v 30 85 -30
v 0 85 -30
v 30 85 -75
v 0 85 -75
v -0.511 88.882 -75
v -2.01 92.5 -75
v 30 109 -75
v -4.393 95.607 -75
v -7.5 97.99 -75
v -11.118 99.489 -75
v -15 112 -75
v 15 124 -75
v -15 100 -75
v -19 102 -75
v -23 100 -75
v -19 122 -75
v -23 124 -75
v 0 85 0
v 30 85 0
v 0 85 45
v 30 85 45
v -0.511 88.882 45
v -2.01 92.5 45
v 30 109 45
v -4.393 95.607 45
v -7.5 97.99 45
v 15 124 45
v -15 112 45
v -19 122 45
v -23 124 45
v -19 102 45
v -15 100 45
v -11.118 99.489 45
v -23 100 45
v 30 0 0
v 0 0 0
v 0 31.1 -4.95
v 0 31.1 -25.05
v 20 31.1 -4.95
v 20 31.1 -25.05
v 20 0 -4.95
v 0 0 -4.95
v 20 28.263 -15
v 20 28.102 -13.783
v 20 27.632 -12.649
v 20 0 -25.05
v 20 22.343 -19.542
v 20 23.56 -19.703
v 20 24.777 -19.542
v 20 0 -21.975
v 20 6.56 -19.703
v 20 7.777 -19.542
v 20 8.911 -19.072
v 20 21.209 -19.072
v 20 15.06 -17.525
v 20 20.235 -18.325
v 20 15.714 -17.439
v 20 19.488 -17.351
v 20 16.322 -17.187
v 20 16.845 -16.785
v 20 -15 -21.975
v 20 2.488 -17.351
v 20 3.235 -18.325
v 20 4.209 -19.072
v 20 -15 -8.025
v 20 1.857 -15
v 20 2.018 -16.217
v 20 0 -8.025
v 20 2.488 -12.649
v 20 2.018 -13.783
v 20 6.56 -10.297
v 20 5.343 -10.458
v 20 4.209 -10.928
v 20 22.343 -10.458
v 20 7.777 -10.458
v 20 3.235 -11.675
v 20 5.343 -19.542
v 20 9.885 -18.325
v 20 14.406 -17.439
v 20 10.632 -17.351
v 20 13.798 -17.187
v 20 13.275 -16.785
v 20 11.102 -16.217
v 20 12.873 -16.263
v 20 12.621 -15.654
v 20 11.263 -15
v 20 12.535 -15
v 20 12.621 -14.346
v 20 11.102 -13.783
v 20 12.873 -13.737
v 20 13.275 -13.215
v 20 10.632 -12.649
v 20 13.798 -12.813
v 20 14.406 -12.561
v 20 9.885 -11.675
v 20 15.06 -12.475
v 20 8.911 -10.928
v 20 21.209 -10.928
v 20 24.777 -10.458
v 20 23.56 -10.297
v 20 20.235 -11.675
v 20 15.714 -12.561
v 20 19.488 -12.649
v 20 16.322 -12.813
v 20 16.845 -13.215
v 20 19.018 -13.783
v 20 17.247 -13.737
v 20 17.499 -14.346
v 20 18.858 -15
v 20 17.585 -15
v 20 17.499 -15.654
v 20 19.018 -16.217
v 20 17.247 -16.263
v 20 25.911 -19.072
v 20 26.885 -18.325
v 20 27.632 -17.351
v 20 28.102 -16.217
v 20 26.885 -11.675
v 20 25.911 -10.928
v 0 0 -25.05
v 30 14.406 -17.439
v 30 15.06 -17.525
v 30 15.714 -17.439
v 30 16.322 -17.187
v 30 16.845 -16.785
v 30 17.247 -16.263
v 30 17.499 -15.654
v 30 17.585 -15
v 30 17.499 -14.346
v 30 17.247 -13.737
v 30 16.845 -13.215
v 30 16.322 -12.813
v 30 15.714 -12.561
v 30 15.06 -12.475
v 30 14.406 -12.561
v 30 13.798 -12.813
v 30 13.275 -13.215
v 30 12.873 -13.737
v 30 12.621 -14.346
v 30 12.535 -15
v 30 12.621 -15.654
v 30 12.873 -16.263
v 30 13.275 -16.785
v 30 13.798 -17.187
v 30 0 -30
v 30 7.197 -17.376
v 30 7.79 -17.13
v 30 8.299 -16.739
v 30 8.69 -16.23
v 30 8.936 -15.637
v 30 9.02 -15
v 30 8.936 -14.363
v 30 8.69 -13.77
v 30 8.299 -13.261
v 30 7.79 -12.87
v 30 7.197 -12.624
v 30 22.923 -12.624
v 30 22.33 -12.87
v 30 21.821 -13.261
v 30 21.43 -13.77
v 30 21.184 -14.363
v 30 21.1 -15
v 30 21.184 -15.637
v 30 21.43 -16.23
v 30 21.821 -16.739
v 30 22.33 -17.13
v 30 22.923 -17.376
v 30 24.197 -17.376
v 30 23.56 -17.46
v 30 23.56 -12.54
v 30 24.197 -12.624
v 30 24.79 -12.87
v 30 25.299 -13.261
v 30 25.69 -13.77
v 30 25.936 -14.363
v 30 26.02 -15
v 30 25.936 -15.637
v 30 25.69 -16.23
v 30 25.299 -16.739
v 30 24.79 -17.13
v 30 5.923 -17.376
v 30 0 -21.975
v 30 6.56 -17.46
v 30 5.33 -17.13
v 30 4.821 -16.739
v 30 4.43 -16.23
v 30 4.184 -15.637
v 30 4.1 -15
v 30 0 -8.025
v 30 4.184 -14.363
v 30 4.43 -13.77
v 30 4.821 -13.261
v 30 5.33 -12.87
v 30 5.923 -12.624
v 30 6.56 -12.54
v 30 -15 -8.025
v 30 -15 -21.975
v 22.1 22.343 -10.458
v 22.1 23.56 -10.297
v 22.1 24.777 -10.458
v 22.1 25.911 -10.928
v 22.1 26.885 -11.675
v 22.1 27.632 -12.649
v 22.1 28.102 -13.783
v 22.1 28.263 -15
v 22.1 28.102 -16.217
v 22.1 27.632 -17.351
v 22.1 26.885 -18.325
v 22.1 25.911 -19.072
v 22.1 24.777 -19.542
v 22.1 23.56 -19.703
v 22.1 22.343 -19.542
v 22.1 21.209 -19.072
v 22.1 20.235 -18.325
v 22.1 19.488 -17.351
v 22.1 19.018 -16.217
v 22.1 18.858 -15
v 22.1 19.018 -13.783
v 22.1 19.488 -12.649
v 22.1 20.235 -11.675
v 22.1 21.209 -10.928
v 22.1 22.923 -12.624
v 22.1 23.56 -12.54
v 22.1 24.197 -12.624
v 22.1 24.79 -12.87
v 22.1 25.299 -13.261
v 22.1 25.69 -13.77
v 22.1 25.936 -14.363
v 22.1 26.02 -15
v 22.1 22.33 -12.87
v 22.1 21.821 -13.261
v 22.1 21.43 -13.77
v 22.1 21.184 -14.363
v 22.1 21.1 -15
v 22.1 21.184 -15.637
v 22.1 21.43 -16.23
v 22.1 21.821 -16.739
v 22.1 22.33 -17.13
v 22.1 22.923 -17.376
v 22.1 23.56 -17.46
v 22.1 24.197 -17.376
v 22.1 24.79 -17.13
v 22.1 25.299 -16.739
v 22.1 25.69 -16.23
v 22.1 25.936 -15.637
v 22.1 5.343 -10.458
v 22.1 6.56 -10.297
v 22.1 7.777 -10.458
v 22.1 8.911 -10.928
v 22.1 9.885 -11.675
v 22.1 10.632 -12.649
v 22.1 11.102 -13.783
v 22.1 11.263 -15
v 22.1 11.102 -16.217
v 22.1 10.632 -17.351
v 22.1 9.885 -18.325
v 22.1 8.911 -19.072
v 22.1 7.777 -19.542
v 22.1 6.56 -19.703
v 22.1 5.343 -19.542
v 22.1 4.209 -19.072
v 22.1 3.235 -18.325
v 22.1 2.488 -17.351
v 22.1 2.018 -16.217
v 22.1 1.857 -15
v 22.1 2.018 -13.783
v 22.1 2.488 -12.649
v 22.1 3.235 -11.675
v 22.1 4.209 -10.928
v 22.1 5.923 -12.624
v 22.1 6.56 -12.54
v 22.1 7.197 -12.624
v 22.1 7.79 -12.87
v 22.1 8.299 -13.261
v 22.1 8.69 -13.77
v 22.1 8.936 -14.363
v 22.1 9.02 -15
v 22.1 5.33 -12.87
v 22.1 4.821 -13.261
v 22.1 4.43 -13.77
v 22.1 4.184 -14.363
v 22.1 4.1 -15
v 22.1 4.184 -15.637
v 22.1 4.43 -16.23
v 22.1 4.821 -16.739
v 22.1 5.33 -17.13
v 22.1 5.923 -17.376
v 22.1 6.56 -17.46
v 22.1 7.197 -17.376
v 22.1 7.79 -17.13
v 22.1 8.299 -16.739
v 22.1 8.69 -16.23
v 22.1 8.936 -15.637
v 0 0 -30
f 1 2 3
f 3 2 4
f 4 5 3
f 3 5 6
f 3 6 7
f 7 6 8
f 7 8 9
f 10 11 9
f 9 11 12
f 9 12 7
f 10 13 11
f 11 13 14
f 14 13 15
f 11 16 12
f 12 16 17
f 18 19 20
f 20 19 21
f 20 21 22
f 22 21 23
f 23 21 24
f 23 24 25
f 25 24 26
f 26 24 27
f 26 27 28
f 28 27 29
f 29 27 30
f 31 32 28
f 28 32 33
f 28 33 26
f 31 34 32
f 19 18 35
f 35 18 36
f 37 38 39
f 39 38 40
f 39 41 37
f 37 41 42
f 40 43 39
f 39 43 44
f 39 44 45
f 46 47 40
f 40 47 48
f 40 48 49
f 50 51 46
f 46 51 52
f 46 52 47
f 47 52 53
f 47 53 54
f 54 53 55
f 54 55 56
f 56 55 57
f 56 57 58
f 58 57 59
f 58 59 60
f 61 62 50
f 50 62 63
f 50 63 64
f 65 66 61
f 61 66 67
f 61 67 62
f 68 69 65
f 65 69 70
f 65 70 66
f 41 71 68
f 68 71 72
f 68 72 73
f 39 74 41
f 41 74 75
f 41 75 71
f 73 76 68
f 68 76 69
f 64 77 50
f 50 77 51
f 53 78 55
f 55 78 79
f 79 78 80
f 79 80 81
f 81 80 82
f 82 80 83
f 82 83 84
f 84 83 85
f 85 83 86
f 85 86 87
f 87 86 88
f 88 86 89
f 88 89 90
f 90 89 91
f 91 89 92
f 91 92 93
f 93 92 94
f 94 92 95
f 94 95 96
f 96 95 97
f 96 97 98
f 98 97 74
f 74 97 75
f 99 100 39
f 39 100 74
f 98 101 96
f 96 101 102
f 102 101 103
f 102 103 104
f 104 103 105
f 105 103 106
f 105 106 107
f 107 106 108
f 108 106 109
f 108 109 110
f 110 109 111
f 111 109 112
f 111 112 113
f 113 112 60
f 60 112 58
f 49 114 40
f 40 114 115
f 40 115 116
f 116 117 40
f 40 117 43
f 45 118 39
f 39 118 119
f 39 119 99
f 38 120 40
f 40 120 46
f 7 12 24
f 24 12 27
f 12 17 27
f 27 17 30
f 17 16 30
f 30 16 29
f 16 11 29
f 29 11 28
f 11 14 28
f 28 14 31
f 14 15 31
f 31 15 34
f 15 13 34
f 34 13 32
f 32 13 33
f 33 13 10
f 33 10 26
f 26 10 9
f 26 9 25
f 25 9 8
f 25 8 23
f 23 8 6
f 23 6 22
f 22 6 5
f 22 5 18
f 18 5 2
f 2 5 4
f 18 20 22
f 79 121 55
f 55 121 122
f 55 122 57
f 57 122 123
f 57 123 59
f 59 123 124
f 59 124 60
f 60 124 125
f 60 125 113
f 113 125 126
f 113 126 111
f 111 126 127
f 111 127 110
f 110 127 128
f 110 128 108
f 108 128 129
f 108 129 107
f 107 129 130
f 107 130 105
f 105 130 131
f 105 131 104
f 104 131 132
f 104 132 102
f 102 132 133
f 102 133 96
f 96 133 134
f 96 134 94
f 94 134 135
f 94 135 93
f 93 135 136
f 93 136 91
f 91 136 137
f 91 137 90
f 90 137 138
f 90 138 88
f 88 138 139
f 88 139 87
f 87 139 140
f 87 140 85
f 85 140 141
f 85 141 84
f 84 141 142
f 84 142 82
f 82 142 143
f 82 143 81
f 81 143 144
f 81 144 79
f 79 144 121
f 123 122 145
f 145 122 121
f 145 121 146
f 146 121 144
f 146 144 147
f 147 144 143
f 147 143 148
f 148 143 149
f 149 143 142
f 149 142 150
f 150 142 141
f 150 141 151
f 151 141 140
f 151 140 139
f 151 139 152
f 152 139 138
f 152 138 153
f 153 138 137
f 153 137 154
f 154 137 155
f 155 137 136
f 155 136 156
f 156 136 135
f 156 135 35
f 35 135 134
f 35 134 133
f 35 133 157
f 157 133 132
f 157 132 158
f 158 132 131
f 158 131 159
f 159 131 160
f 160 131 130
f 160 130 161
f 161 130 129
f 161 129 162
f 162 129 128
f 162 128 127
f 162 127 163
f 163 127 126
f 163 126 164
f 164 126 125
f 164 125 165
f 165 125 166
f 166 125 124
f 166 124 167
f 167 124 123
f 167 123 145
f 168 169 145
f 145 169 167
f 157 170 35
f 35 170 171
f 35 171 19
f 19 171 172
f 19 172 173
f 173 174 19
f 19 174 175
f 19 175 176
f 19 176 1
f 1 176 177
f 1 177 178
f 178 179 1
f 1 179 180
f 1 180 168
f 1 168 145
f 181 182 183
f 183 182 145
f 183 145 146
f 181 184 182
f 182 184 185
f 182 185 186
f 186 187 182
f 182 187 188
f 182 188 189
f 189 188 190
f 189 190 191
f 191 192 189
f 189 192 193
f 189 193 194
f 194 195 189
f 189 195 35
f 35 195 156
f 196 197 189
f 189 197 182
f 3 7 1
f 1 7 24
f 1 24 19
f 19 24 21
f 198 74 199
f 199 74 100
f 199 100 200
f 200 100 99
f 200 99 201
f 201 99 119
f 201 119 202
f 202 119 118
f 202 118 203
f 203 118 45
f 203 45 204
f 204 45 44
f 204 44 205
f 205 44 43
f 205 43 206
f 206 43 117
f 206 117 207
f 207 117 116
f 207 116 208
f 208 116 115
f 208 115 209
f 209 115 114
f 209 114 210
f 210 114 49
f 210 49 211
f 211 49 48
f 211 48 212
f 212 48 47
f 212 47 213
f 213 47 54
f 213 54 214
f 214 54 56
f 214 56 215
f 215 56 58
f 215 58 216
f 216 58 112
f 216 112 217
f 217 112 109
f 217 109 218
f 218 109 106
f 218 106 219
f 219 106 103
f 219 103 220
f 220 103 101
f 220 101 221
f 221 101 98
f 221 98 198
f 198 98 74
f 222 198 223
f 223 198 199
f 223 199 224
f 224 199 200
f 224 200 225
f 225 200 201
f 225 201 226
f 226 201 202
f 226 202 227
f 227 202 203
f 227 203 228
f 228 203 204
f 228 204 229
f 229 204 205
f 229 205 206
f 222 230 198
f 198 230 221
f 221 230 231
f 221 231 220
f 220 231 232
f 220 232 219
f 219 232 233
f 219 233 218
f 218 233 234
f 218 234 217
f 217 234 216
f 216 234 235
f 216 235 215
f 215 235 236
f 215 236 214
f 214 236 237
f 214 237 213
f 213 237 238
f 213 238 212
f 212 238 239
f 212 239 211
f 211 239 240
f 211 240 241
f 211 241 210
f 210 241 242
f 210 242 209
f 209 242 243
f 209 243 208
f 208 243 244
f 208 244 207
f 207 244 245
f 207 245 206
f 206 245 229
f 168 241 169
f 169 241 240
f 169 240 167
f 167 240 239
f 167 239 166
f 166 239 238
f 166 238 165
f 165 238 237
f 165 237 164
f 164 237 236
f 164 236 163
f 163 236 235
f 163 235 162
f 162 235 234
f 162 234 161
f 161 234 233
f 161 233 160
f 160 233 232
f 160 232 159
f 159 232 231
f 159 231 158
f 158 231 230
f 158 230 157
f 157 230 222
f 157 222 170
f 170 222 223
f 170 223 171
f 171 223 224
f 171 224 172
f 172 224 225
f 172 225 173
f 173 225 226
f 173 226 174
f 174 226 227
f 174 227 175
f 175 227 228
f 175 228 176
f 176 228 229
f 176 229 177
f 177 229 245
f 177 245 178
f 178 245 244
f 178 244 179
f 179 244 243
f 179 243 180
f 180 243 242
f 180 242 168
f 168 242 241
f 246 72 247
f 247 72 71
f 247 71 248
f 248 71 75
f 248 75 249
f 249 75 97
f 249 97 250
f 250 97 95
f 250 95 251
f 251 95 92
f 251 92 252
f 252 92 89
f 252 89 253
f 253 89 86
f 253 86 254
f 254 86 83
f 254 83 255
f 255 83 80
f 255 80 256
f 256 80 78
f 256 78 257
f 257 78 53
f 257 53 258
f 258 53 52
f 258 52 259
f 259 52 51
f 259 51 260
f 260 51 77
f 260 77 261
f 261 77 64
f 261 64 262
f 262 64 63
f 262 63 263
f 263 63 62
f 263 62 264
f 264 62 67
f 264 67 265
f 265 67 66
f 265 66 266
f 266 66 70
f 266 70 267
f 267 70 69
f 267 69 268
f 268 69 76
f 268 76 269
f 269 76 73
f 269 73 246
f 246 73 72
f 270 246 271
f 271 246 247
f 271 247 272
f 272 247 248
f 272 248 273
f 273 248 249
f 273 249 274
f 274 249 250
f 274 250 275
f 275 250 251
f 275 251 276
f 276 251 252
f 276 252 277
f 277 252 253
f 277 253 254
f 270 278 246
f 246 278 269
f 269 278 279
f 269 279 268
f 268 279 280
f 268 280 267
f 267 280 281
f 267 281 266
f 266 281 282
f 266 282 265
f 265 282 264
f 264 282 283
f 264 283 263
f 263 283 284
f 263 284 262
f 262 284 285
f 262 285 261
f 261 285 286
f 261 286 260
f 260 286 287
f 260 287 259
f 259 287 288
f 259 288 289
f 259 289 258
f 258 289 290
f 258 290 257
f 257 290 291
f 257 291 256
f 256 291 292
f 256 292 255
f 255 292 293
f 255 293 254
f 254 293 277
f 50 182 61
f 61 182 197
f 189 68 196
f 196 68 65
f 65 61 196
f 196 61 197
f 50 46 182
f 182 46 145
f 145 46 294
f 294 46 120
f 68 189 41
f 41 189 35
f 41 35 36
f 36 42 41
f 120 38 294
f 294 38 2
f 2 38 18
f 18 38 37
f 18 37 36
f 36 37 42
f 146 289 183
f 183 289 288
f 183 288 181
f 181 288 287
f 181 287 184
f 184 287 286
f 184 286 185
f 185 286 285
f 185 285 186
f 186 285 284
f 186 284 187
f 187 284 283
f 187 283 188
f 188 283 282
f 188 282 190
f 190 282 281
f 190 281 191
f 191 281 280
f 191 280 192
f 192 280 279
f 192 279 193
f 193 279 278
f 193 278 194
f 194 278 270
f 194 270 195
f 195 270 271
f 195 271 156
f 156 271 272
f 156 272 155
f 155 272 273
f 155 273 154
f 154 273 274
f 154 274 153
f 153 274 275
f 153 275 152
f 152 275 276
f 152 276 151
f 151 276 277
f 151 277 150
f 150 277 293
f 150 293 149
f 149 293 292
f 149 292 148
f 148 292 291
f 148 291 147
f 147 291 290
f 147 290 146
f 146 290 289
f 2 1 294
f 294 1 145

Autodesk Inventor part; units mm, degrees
ref_plane "YZ Plane" through (0, 0, 0) normal (1, 0, 0) x (0, 1, 0)
ref_plane "XZ Plane" through (0, 0, 0) normal (0, 1, 0) x (-1, 0, 0)
sketch "Sketch1" plane through (0, 0, 0) normal (0, 0, 1) x (1, 0, 0)
  line L0 (0, 0) -> (25, 0)
  line L1 (25, 0) -> (25, 40)
  line L2 (25, 40) -> (0, 40)
  line L3 (0, 40) -> (0, 0)
  dimension "d1" = 25
  dimension "d2" = 40
  dimension "d3" = 25
extrude "Extrusion1" add sketch "Sketch1" against normal blind 30
sketch "Sketch2" plane through (25, 0, 0) normal (1, 0, 0) x (0, 0, -1)
  line L0 (0, 0) -> (30, 0) projected
  circle A0 centre (15, 6.56) radius 2.46
extrude "Extrusion2" cut sketch "Sketch2" against normal blind 30
sketch "Sketch3" plane through (0, 0, 0) normal (-1, 0, 0) x (0, 0, 1)
  line L0 (0, 0) -> (-30, 0) projected
  line L1 (-25.05, 0) -> (-4.95, 0)
  line L2 (-4.95, 0) -> (-4.95, 33.12)
  line L3 (-4.95, 33.12) -> (-25.05, 33.12)
  line L4 (-25.05, 33.12) -> (-25.05, 0)
  dimension "d11" = 20.1
extrude "Extrusion3" cut sketch "Sketch3" against normal blind 20
sketch "Sketch4" plane through (0, 0, 0) normal (0, -1, 0) x (1, 0, 0)
  line L0 (20, -4.95) -> (20, -25.05) projected
  line L1 (20, -15) -> (25, -15)
  line L2 (25, 0) -> (25, -30) projected
  line L3 (20, -8.025) -> (25, -8.025)
  line L4 (25, -8.025) -> (25, -21.975)
  line L5 (25, -21.975) -> (20, -21.975)
  line L6 (20, -21.975) -> (20, -8.025)
  line L7 (20, -8.025) -> (25, -21.975) construction
  line L8 (25, -8.025) -> (20, -21.975) construction
  line L9 (25, -12.54) -> (25, -17.46) projected
  point P0 (0, 0)
  point P1 (22.5, -15)
  dimension "d14" = 13.95
extrude "Extrusion4" add sketch "Sketch4" along normal blind 15
sketch "Sketch5" plane through (20, 0, 0) normal (-1, 0, 0) x (0, 0, 1)
  circle A0 centre (-15, 6.56) radius 2.46 projected
  circle A1 centre (-15, 6.56) radius 4.7025
  circle A2 centre (-15, 6.56) radius 2.46 projected
  circle A3 centre (-15, 6.56) radius 2.46
  point P0 (0, 0)
  dimension "d17" = 9.405
extrude "Extrusion5" cut sketch "Sketch5" against normal blind 2.1
sketch "Sketch6" plane through (25, 0, 0) normal (1, 0, 0) x (0, 0, -1)
  circle A0 centre (15, 6.56) radius 4.7025 projected
  line L0 (15, 6.56) -> (15, 23.56)
  circle A1 centre (15, 23.56) radius 2.46
  point P0 (0, 0)
  dimension "d20" = 17
  dimension "d21" = 4.92
extrude "Extrusion6" cut sketch "Sketch6" against normal blind 10 contours A1
sketch "Sketch7" plane through (20, 0, 0) normal (-1, 0, 0) x (0, 0, 1)
  circle A0 centre (-15, 23.56) radius 2.46 projected
  circle A1 centre (-15, 23.56) radius 4.7025
  point P0 (0, 0)
  dimension "d24" = 9.405
extrude "Extrusion7" cut sketch "Sketch7" against normal blind 2.1
sketch "Sketch9" plane through (25, 0, 0) normal (1, 0, 0) x (0, 0, -1)
  circle A0 centre (15, 6.56) radius 2.46 projected
  circle A1 centre (15, 6.56) radius 2.46
  circle A2 centre (15, 23.56) radius 2.46 projected
  circle A3 centre (15, 23.56) radius 2.46
  line L0 (30, 40) -> (30, 0) projected
  line L1 (30, 0) -> (30, 40)
  line L2 (30, 40) -> (0, 40)
  line L3 (0, 40) -> (0, 0)
  line L4 (0, 0) -> (8.025, 0) projected
  line L5 (21.975, 0) -> (21.975, -15)
  line L6 (21.975, -15) -> (8.025, -15)
  line L7 (8.025, -15) -> (8.025, 0)
  line L8 (0, 0) -> (8.025, 0)
  line L9 (21.975, 0) -> (30, 0)
extrude "Extrusion8" add sketch "Sketch9" along normal blind 5
sketch "Sketch10" plane through (0, 40, 0) normal (0, 1, 0) x (1, 0, 0)
  line L0 (0, 30) -> (30, 30) projected
  line L1 (30, 0) -> (0, 0) projected
  line L2 (0, 30) -> (30, 30)
  line L3 (30, 30) -> (30, 0)
  line L4 (30, 0) -> (0, 0)
  line L5 (0, 0) -> (0, 30)
extrude "Extrusion9" add sketch "Sketch10" along normal blind 30
sketch "Sketch12" plane through (30, 0, 0) normal (1, 0, 0) x (0, 0, -1)
  circle A0 centre (15, 6.56) radius 2.46 projected
  line L0 (15, 6.56) -> (15, 15.06)
  circle A1 centre (15, 15.06) radius 2.525
  point P0 (0, 0)
  dimension "d31" = 8.5
  dimension "d33" = 5.05
extrude "Extrusion10" cut sketch "Sketch12" against normal blind 30 contours A1
sketch "Sketch14" plane through (0, 0, 0) normal (0, 0, 1) x (1, 0, 0)
  line L0 (30, 70) -> (0, 70) projected
  line L1 (0, 70) -> (0, 85)
  line L2 (-15, 100) -> (-23, 100)
  line L3 (30, 0) -> (30, 70) projected
  line L4 (30, 109) -> (30, 70)
  arc A0 (0, 85) -> (-15, 100) centre (-15, 85) ccw
  line L5 (30, 105) -> (30, 100)
  line L6 (-23, 124) -> (15, 124)
  line L7 (-19, 122) -> (-23, 124)
  line L8 (-19, 122) -> (-15, 112)
  line L9 (-19, 102) -> (-23, 100)
  line L10 (-19, 102) -> (-15, 112)
  line L11 (30, 109) -> (15, 124)
  point P0 (0, 0)
  point P1 (0, 100)
  dimension "d47" = 30
  dimension "d54" = 15
extrude "Extrusion12" add sketch "Sketch14" against normal blind 30
sketch "Sketch15" plane through (0, 0, -25.05) normal (-1, 0, 0) x (0, 0, 1)
  line L0 (0, 33.12) -> (20.1, 33.12) projected
  line L1 (20.1, 33.12) -> (20.1, 0) projected
  line L2 (0, 33.12) -> (20.1, 33.12)
  line L3 (20.1, 33.12) -> (20.1, 31.1)
  line L4 (20.1, 31.1) -> (0, 31.1)
  line L5 (0, 31.1) -> (0, 33.12)
  point P0 (25.05, 0)
  dimension "d57" = 2.02
extrude "Extrusion13" add sketch "Sketch15" against normal blind 20
sketch "Sketch19" plane through (0, 0, 0) normal (0, 0, 1) x (1, 0, 0)
  arc A0 (0, 85) -> (-15, 100) centre (-15, 85) ccw projected
  arc A1 (0, 85) -> (-15, 100) centre (-15, 85) ccw
  line L0 (-15, 100) -> (-23, 100) projected
  line L1 (-15, 100) -> (-23, 100)
  line L2 (-23, 100) -> (-19, 102) projected
  line L3 (-23, 100) -> (-19, 102)
  line L4 (-19, 102) -> (-15, 112) projected
  line L5 (-19, 102) -> (-15, 112)
  line L6 (-15, 112) -> (-19, 122) projected
  line L7 (-15, 112) -> (-19, 122)
  line L8 (-19, 122) -> (-23, 124) projected
  line L9 (-19, 122) -> (-23, 124)
  line L10 (-23, 124) -> (15, 124) projected
  line L11 (-23, 124) -> (15, 124)
  line L12 (15, 124) -> (30, 109) projected
  line L13 (15, 124) -> (30, 109)
  line L14 (30, 109) -> (30, 85)
  line L15 (30, 0) -> (30, 109) projected
  line L16 (0, 85) -> (30, 85)
  point P0 (0, 0)
extrude "Extrusion14" add sketch "Sketch19" along normal blind 45
ref_plane "Work Plane1" through (0, 0, -15) normal (0, 0, 1) x (1, 0, 0)
mirror "Mirror1" about plane through (0, 0, -15) normal (0, 0, 1) of "Extrusion14"
properties part number "20mm_x_120mm"
